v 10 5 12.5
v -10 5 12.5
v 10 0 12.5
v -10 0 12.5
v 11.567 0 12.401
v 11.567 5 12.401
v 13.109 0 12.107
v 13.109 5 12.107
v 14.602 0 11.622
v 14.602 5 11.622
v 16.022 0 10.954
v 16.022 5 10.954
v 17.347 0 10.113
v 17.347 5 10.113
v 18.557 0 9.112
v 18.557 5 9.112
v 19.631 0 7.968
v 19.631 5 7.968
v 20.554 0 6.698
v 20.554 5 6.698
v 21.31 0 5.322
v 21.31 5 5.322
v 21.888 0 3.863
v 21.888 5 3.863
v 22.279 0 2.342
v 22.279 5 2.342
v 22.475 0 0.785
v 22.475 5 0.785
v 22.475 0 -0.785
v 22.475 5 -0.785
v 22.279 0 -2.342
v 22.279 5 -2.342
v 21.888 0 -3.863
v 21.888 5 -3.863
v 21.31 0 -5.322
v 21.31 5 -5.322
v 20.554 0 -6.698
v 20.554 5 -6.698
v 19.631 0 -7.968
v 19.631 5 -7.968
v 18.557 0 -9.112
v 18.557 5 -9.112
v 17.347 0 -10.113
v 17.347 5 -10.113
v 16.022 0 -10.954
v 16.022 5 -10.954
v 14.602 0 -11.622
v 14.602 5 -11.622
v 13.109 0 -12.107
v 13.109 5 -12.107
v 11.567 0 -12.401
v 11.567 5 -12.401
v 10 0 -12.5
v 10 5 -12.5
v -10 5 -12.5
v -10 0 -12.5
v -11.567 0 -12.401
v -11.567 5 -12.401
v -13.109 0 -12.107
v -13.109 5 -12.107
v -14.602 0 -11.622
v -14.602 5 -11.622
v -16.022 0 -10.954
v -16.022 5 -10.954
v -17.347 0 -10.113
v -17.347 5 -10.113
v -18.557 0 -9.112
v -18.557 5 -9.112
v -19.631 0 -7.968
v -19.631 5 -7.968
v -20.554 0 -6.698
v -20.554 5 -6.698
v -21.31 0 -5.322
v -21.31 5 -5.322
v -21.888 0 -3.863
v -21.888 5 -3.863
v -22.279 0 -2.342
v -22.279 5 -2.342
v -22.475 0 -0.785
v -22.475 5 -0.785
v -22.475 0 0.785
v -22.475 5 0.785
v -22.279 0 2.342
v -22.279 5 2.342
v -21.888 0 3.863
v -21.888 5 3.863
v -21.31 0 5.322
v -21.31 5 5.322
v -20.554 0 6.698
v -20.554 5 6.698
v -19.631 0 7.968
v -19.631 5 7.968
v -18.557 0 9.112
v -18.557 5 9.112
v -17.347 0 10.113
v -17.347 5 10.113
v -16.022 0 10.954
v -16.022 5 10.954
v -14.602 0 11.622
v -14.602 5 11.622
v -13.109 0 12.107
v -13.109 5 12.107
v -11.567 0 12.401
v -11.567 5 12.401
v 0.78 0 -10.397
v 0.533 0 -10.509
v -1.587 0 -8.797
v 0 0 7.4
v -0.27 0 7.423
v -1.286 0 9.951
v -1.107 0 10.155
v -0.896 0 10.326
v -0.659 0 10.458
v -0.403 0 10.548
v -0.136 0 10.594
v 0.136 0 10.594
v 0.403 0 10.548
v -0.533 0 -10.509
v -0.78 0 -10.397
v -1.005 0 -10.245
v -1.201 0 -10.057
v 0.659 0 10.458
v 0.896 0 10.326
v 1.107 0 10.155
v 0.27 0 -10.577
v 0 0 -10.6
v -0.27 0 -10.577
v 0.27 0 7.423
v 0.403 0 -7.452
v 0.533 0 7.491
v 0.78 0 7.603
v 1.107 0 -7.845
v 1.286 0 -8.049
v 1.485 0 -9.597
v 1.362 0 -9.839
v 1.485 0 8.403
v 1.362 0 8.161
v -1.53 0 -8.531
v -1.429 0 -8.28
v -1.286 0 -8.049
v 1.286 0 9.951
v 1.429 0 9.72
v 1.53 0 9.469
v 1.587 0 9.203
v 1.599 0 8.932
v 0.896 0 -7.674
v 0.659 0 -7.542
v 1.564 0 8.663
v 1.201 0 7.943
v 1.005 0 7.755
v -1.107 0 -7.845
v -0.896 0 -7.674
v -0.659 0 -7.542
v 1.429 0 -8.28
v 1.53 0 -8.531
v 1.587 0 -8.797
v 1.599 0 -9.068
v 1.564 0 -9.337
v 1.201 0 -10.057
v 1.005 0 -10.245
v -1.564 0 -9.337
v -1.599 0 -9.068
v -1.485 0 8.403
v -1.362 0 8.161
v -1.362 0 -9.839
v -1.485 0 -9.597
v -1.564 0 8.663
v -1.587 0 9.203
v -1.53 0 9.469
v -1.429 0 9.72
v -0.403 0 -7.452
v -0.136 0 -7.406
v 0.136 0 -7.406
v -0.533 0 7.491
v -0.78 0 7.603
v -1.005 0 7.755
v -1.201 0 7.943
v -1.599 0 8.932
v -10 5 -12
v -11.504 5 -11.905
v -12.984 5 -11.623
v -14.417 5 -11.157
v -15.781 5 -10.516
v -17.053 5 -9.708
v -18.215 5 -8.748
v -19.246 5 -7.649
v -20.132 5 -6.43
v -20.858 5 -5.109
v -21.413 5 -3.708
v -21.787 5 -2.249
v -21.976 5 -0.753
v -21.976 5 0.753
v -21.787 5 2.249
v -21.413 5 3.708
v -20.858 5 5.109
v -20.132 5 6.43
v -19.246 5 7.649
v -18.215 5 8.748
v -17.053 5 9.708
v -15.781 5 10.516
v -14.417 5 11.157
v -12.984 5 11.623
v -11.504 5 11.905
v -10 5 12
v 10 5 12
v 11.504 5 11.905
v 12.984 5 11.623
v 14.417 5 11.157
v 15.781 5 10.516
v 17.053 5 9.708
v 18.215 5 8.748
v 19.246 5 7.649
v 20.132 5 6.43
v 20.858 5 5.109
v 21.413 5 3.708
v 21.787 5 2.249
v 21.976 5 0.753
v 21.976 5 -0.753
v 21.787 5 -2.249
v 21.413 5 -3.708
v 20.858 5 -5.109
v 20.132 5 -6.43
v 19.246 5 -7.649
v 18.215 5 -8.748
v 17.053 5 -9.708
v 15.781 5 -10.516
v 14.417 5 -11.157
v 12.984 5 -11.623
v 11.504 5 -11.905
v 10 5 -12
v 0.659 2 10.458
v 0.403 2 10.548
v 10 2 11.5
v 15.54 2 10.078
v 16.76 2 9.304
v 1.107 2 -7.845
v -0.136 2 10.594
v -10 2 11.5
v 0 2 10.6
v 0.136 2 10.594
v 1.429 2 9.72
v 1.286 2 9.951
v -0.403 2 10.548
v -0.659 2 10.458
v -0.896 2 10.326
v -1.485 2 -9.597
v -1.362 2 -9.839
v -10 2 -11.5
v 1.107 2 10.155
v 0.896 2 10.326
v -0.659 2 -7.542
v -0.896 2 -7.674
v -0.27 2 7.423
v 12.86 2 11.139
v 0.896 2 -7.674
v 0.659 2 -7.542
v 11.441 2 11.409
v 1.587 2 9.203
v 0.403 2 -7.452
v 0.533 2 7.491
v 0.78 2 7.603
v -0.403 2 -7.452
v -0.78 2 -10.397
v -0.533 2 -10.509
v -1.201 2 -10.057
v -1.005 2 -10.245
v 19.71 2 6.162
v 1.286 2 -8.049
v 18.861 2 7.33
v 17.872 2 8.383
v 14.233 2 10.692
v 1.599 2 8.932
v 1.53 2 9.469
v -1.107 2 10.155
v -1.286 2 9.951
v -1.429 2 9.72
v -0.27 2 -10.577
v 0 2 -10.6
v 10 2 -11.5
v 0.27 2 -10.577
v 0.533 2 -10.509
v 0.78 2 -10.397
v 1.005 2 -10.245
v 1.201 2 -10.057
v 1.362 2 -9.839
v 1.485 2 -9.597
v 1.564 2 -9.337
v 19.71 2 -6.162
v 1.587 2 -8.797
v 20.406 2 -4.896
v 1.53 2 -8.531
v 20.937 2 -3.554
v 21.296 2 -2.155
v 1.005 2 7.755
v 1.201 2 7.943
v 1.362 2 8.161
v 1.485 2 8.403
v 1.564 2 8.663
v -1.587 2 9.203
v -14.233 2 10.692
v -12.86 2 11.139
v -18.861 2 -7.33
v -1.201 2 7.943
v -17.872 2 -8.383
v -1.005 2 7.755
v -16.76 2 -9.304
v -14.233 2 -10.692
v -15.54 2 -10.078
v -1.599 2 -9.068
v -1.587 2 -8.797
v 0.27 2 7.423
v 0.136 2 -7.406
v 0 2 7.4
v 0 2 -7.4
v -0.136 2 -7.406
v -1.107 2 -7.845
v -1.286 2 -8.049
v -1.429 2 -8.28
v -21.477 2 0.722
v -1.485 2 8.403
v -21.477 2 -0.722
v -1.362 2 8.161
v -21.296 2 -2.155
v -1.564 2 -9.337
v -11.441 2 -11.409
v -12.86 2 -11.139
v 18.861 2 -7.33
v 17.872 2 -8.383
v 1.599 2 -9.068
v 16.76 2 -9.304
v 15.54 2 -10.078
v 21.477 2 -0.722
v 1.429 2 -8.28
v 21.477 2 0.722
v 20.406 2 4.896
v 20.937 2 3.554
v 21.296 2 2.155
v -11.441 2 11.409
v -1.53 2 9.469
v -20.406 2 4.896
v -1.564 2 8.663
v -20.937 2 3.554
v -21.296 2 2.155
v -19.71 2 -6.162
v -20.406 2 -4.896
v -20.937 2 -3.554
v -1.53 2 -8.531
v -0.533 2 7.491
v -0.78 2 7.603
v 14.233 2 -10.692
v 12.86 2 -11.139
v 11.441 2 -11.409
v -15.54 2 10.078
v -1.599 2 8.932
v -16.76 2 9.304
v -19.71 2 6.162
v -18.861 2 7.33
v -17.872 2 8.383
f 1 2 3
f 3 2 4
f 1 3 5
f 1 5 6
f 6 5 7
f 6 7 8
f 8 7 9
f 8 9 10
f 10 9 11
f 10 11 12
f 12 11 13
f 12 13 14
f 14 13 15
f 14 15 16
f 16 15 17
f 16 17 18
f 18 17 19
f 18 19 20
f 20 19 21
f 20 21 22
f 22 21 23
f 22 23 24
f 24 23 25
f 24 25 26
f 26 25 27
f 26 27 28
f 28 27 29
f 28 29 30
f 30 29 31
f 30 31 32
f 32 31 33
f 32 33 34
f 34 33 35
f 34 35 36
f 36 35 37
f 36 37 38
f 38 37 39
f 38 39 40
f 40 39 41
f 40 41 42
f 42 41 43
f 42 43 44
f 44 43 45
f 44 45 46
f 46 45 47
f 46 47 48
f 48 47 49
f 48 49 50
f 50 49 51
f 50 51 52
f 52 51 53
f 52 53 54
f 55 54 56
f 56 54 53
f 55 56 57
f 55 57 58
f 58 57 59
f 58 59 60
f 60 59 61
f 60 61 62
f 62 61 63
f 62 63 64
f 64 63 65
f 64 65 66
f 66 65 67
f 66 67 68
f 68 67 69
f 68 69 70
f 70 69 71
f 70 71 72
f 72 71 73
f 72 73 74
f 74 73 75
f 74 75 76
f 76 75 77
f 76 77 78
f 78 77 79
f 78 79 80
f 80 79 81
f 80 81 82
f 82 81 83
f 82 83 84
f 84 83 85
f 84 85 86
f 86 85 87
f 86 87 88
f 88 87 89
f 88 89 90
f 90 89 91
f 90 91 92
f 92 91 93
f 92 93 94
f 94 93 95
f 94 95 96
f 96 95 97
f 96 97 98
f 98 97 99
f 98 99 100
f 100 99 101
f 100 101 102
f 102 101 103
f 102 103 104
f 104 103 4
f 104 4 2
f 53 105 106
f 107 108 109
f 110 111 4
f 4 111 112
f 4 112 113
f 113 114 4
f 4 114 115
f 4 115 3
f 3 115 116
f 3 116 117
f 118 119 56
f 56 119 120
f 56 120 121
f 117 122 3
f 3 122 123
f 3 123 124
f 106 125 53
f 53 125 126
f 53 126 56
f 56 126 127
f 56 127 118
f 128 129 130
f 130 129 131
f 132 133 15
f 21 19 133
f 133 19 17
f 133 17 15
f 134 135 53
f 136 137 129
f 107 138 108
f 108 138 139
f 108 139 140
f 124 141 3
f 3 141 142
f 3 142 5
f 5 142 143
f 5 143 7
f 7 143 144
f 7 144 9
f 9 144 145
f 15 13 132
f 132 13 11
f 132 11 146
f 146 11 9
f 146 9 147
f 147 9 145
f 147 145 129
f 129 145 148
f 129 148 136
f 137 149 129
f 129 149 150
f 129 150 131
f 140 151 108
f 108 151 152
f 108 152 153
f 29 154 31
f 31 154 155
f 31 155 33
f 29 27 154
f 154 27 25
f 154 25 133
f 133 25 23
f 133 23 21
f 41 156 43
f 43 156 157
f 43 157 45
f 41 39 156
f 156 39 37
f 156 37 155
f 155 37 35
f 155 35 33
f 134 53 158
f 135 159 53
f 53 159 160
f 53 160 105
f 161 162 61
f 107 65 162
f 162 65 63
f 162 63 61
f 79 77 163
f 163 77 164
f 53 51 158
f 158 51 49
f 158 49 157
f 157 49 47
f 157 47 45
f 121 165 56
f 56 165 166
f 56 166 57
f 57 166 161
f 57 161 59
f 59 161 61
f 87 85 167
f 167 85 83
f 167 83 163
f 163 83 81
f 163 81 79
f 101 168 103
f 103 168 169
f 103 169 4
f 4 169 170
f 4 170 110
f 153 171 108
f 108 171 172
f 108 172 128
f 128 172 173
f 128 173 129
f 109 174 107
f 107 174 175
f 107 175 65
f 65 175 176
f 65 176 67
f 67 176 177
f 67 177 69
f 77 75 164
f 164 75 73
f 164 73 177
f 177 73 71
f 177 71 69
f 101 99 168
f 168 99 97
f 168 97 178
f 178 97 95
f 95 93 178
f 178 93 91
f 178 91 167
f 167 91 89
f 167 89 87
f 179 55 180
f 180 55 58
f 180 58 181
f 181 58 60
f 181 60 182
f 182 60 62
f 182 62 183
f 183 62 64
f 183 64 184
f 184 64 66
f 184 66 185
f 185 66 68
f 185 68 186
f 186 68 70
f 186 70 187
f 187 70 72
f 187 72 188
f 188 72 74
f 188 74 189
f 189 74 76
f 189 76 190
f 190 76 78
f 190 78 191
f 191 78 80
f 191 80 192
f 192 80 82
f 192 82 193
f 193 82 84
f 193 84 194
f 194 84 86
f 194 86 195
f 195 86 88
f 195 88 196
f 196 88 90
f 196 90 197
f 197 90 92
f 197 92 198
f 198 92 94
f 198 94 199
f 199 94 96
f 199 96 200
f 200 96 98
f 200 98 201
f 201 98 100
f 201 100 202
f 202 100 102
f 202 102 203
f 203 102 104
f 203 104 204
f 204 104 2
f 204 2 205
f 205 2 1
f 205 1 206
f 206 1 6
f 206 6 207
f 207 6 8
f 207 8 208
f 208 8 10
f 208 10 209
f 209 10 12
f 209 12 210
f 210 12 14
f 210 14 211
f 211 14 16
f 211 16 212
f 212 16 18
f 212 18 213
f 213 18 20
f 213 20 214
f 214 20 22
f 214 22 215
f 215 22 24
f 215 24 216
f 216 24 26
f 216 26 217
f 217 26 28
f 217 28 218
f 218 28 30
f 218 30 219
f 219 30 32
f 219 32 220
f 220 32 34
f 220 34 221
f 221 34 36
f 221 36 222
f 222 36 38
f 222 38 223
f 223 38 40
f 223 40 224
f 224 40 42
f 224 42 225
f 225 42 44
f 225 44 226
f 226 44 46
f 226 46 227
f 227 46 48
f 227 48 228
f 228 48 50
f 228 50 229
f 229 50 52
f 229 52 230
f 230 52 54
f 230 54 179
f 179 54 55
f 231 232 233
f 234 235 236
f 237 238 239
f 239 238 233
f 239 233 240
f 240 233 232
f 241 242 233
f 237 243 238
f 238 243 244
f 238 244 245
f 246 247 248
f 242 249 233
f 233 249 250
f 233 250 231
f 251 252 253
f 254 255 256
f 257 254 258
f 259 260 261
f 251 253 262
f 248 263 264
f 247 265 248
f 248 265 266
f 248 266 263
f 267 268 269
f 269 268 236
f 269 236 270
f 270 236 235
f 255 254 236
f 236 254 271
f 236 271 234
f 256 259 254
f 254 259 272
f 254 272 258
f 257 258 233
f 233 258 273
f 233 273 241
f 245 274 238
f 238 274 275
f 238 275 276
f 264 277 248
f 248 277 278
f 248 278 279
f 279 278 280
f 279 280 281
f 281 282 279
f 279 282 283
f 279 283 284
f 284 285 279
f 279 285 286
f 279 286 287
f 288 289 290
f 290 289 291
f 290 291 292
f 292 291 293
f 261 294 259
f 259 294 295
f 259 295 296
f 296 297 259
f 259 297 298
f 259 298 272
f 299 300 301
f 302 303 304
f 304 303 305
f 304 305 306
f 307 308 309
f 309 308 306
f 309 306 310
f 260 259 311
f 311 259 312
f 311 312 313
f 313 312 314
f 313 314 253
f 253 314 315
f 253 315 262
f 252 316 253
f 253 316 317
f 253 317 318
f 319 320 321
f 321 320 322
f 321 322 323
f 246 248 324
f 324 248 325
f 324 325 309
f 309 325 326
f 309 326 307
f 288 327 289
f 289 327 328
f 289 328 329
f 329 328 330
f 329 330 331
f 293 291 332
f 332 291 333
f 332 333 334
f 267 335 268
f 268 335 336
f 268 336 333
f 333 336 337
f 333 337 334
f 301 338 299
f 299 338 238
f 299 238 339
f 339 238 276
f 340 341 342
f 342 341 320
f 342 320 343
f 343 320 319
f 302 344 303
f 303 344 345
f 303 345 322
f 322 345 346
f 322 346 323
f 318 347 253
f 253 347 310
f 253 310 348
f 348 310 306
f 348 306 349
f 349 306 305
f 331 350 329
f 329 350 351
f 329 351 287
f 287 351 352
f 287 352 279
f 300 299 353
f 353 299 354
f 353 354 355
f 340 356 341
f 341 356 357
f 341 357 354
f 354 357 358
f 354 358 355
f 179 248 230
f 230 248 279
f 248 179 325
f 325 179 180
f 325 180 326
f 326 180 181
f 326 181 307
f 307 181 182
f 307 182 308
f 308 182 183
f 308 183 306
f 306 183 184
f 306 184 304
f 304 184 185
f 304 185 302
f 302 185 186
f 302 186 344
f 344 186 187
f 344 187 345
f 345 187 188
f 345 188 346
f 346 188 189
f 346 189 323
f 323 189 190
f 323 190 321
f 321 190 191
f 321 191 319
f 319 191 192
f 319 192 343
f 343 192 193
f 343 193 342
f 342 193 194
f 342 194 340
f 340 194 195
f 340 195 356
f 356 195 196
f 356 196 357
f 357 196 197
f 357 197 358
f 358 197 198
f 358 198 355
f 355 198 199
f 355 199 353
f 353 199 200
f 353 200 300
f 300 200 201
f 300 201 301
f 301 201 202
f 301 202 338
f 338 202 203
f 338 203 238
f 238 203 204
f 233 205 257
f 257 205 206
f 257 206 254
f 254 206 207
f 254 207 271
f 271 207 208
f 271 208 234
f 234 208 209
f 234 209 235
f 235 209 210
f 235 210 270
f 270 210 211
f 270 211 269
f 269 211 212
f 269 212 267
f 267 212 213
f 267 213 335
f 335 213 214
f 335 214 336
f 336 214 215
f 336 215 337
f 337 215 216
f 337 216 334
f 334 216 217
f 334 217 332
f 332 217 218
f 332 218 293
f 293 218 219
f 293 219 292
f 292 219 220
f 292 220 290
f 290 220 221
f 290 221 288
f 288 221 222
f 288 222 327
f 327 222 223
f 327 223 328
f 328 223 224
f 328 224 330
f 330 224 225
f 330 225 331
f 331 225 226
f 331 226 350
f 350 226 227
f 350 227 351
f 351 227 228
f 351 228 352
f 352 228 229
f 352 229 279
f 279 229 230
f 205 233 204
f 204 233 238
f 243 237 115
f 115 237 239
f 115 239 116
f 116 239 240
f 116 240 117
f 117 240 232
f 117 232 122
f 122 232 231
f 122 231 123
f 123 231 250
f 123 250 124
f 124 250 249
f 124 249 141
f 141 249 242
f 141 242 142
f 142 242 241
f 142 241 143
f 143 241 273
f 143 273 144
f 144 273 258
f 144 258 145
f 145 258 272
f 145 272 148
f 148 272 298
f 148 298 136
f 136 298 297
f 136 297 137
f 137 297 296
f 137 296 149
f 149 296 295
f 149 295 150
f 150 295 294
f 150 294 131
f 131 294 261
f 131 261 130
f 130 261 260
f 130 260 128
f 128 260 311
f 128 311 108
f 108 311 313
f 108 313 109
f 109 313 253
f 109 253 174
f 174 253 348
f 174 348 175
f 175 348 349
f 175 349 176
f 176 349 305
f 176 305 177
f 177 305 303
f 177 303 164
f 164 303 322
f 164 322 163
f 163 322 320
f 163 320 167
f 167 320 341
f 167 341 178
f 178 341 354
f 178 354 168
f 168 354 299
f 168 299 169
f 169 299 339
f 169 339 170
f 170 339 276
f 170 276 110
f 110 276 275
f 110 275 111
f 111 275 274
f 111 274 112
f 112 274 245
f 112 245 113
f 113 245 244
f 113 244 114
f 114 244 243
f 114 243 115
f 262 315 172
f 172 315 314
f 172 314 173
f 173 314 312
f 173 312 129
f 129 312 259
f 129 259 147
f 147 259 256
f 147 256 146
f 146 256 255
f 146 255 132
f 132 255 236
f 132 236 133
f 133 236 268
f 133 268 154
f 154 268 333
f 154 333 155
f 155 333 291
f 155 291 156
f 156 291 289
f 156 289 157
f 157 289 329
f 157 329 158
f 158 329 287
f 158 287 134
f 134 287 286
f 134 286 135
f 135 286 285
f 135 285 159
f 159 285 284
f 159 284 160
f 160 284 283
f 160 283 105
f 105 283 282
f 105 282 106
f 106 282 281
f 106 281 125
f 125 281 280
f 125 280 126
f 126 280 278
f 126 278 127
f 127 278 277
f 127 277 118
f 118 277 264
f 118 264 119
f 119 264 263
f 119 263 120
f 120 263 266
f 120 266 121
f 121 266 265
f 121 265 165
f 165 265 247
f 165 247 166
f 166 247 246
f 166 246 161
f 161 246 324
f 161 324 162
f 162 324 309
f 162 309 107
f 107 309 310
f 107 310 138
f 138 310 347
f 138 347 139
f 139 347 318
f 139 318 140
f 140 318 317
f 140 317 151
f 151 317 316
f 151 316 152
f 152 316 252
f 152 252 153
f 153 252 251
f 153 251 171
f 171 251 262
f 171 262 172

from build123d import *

# Parameters (mm, degrees)
BOSS_EXTRUDE1_DEPTH = 2
BOSS_EXTRUDE2_DEPTH = 3
CHAMFER1_SIZE       = 0.5
CHAMFER1_SIZE_2     = 3
SKETCH3_R           = 1.6
CUT_EXTRUDE1_DEPTH  = 27.220221204


with BuildPart() as part:
    # Sketch1 → Boss-Extrude1 (new body)
    with BuildSketch(Plane(origin=(0, 0, 0), x_dir=(1, 0, 0), z_dir=(0, 1, 0))):
        with BuildLine():
            Line((-10, 12.5), (10, 12.5))
            ThreePointArc((10, 12.5), (22.5, 0), (10, -12.5))
            Line((10, -12.5), (-10, -12.5))
            ThreePointArc((-10, -12.5), (-22.5, 0), (-10, 12.5))
        make_face()
    extrude(amount=BOSS_EXTRUDE1_DEPTH)

    # Sketch2 → Boss-Extrude2 (add)
    with BuildSketch(Plane(origin=(0, 2, 0), x_dir=(1, 0, 0), z_dir=(0, 1, 0))):
        with BuildLine():
            Line((10, 12.5), (-10, 12.5))
            ThreePointArc((-10, 12.5), (-22.5, 0), (-10, -12.5))
            Line((-10, -12.5), (10, -12.5))
            ThreePointArc((10, -12.5), (22.5, 0), (10, 12.5))
        make_face()
        with BuildLine():
            Line((-10, -11.5), (10, -11.5))
            ThreePointArc((10, -11.5), (21.5, 0), (10, 11.5))
            Line((10, 11.5), (-10, 11.5))
            ThreePointArc((-10, 11.5), (-21.5, 0), (-10, -11.5))
        make_face(mode=Mode.SUBTRACT)
    extrude(amount=BOSS_EXTRUDE2_DEPTH)

    # Chamfer1
    # the kernel refuses this chamfer: 3, 0.5 mm, written as the material it takes off along each edge
    with BuildSketch(Plane(origin=(-10, 5, 11.5), x_dir=(0, 0.2220622368174743, 0.9750324932942593), z_dir=(1, 0, 0))) as chamfer1_piece_1_section:
        Polygon((CHAMFER1_SIZE * 0.975032493294, CHAMFER1_SIZE * 0.222062236817), (-CHAMFER1_SIZE_2 * 0.222062236817, CHAMFER1_SIZE_2 * 0.975032493294), (0, 0), align=None)
    chamfer1_piece_1 = extrude(amount=20, mode=Mode.PRIVATE)
    chamfer1_piece_1 = split(chamfer1_piece_1, bisect_by=Plane(origin=(0, 2, 11.634388756), z_dir=(0, 1, 0)), keep=Keep.TOP, mode=Mode.PRIVATE)
    add(chamfer1_piece_1, mode=Mode.SUBTRACT)
    with BuildSketch(Plane(origin=(10, 5, 0), x_dir=(0, 0, 1), z_dir=(-1, 0, 0))) as chamfer1_piece_2_section:
        Polygon((11.5 + CHAMFER1_SIZE, 0), (11.5, -CHAMFER1_SIZE_2), (11.5, 0), align=None)
    chamfer1_piece_2 = revolve(axis=Axis((10, 5, 0), (0, 1, 0)), revolution_arc=180, mode=Mode.PRIVATE)
    chamfer1_piece_2 = split(chamfer1_piece_2, bisect_by=Plane(origin=(21.727349814, 2, 0), z_dir=(0, 1, 0)), keep=Keep.TOP, mode=Mode.PRIVATE)
    add(chamfer1_piece_2, mode=Mode.SUBTRACT)
    with BuildSketch(Plane(origin=(10, 5, -11.5), x_dir=(0, 0.2220622368174743, -0.9750324932942593), z_dir=(-1, 0, 0))) as chamfer1_piece_3_section:
        Polygon((CHAMFER1_SIZE * 0.975032493294, CHAMFER1_SIZE * 0.222062236817), (-CHAMFER1_SIZE_2 * 0.222062236817, CHAMFER1_SIZE_2 * 0.975032493294), (0, 0), align=None)
    chamfer1_piece_3 = extrude(amount=20, mode=Mode.PRIVATE)
    chamfer1_piece_3 = split(chamfer1_piece_3, bisect_by=Plane(origin=(0, 2, -11.634388756), z_dir=(0, 1, 0)), keep=Keep.TOP, mode=Mode.PRIVATE)
    add(chamfer1_piece_3, mode=Mode.SUBTRACT)
    with BuildSketch(Plane(origin=(-10, 5, 0), x_dir=(0, 0, -1), z_dir=(1, 0, 0))) as chamfer1_piece_4_section:
        Polygon((11.5 + CHAMFER1_SIZE, 0), (11.5, -CHAMFER1_SIZE_2), (11.5, 0), align=None)
    chamfer1_piece_4 = revolve(axis=Axis((-10, 5, 0), (0, 1, 0)), revolution_arc=180, mode=Mode.PRIVATE)
    chamfer1_piece_4 = split(chamfer1_piece_4, bisect_by=Plane(origin=(-21.727349812, 2, 0), z_dir=(0, 1, 0)), keep=Keep.TOP, mode=Mode.PRIVATE)
    add(chamfer1_piece_4, mode=Mode.SUBTRACT)

    # Sketch3 → Cut-Extrude1 (cut, through all)
    with BuildSketch(Plane.XZ):
        with Locations(Location((0, -9, 0), (0, 0, 270))):
            Circle(SKETCH3_R)
        with Locations(Location((0, 9, 0), (0, 0, 270))):
            Circle(SKETCH3_R)
    extrude(amount=-CUT_EXTRUDE1_DEPTH, mode=Mode.SUBTRACT)


solid = part.part
